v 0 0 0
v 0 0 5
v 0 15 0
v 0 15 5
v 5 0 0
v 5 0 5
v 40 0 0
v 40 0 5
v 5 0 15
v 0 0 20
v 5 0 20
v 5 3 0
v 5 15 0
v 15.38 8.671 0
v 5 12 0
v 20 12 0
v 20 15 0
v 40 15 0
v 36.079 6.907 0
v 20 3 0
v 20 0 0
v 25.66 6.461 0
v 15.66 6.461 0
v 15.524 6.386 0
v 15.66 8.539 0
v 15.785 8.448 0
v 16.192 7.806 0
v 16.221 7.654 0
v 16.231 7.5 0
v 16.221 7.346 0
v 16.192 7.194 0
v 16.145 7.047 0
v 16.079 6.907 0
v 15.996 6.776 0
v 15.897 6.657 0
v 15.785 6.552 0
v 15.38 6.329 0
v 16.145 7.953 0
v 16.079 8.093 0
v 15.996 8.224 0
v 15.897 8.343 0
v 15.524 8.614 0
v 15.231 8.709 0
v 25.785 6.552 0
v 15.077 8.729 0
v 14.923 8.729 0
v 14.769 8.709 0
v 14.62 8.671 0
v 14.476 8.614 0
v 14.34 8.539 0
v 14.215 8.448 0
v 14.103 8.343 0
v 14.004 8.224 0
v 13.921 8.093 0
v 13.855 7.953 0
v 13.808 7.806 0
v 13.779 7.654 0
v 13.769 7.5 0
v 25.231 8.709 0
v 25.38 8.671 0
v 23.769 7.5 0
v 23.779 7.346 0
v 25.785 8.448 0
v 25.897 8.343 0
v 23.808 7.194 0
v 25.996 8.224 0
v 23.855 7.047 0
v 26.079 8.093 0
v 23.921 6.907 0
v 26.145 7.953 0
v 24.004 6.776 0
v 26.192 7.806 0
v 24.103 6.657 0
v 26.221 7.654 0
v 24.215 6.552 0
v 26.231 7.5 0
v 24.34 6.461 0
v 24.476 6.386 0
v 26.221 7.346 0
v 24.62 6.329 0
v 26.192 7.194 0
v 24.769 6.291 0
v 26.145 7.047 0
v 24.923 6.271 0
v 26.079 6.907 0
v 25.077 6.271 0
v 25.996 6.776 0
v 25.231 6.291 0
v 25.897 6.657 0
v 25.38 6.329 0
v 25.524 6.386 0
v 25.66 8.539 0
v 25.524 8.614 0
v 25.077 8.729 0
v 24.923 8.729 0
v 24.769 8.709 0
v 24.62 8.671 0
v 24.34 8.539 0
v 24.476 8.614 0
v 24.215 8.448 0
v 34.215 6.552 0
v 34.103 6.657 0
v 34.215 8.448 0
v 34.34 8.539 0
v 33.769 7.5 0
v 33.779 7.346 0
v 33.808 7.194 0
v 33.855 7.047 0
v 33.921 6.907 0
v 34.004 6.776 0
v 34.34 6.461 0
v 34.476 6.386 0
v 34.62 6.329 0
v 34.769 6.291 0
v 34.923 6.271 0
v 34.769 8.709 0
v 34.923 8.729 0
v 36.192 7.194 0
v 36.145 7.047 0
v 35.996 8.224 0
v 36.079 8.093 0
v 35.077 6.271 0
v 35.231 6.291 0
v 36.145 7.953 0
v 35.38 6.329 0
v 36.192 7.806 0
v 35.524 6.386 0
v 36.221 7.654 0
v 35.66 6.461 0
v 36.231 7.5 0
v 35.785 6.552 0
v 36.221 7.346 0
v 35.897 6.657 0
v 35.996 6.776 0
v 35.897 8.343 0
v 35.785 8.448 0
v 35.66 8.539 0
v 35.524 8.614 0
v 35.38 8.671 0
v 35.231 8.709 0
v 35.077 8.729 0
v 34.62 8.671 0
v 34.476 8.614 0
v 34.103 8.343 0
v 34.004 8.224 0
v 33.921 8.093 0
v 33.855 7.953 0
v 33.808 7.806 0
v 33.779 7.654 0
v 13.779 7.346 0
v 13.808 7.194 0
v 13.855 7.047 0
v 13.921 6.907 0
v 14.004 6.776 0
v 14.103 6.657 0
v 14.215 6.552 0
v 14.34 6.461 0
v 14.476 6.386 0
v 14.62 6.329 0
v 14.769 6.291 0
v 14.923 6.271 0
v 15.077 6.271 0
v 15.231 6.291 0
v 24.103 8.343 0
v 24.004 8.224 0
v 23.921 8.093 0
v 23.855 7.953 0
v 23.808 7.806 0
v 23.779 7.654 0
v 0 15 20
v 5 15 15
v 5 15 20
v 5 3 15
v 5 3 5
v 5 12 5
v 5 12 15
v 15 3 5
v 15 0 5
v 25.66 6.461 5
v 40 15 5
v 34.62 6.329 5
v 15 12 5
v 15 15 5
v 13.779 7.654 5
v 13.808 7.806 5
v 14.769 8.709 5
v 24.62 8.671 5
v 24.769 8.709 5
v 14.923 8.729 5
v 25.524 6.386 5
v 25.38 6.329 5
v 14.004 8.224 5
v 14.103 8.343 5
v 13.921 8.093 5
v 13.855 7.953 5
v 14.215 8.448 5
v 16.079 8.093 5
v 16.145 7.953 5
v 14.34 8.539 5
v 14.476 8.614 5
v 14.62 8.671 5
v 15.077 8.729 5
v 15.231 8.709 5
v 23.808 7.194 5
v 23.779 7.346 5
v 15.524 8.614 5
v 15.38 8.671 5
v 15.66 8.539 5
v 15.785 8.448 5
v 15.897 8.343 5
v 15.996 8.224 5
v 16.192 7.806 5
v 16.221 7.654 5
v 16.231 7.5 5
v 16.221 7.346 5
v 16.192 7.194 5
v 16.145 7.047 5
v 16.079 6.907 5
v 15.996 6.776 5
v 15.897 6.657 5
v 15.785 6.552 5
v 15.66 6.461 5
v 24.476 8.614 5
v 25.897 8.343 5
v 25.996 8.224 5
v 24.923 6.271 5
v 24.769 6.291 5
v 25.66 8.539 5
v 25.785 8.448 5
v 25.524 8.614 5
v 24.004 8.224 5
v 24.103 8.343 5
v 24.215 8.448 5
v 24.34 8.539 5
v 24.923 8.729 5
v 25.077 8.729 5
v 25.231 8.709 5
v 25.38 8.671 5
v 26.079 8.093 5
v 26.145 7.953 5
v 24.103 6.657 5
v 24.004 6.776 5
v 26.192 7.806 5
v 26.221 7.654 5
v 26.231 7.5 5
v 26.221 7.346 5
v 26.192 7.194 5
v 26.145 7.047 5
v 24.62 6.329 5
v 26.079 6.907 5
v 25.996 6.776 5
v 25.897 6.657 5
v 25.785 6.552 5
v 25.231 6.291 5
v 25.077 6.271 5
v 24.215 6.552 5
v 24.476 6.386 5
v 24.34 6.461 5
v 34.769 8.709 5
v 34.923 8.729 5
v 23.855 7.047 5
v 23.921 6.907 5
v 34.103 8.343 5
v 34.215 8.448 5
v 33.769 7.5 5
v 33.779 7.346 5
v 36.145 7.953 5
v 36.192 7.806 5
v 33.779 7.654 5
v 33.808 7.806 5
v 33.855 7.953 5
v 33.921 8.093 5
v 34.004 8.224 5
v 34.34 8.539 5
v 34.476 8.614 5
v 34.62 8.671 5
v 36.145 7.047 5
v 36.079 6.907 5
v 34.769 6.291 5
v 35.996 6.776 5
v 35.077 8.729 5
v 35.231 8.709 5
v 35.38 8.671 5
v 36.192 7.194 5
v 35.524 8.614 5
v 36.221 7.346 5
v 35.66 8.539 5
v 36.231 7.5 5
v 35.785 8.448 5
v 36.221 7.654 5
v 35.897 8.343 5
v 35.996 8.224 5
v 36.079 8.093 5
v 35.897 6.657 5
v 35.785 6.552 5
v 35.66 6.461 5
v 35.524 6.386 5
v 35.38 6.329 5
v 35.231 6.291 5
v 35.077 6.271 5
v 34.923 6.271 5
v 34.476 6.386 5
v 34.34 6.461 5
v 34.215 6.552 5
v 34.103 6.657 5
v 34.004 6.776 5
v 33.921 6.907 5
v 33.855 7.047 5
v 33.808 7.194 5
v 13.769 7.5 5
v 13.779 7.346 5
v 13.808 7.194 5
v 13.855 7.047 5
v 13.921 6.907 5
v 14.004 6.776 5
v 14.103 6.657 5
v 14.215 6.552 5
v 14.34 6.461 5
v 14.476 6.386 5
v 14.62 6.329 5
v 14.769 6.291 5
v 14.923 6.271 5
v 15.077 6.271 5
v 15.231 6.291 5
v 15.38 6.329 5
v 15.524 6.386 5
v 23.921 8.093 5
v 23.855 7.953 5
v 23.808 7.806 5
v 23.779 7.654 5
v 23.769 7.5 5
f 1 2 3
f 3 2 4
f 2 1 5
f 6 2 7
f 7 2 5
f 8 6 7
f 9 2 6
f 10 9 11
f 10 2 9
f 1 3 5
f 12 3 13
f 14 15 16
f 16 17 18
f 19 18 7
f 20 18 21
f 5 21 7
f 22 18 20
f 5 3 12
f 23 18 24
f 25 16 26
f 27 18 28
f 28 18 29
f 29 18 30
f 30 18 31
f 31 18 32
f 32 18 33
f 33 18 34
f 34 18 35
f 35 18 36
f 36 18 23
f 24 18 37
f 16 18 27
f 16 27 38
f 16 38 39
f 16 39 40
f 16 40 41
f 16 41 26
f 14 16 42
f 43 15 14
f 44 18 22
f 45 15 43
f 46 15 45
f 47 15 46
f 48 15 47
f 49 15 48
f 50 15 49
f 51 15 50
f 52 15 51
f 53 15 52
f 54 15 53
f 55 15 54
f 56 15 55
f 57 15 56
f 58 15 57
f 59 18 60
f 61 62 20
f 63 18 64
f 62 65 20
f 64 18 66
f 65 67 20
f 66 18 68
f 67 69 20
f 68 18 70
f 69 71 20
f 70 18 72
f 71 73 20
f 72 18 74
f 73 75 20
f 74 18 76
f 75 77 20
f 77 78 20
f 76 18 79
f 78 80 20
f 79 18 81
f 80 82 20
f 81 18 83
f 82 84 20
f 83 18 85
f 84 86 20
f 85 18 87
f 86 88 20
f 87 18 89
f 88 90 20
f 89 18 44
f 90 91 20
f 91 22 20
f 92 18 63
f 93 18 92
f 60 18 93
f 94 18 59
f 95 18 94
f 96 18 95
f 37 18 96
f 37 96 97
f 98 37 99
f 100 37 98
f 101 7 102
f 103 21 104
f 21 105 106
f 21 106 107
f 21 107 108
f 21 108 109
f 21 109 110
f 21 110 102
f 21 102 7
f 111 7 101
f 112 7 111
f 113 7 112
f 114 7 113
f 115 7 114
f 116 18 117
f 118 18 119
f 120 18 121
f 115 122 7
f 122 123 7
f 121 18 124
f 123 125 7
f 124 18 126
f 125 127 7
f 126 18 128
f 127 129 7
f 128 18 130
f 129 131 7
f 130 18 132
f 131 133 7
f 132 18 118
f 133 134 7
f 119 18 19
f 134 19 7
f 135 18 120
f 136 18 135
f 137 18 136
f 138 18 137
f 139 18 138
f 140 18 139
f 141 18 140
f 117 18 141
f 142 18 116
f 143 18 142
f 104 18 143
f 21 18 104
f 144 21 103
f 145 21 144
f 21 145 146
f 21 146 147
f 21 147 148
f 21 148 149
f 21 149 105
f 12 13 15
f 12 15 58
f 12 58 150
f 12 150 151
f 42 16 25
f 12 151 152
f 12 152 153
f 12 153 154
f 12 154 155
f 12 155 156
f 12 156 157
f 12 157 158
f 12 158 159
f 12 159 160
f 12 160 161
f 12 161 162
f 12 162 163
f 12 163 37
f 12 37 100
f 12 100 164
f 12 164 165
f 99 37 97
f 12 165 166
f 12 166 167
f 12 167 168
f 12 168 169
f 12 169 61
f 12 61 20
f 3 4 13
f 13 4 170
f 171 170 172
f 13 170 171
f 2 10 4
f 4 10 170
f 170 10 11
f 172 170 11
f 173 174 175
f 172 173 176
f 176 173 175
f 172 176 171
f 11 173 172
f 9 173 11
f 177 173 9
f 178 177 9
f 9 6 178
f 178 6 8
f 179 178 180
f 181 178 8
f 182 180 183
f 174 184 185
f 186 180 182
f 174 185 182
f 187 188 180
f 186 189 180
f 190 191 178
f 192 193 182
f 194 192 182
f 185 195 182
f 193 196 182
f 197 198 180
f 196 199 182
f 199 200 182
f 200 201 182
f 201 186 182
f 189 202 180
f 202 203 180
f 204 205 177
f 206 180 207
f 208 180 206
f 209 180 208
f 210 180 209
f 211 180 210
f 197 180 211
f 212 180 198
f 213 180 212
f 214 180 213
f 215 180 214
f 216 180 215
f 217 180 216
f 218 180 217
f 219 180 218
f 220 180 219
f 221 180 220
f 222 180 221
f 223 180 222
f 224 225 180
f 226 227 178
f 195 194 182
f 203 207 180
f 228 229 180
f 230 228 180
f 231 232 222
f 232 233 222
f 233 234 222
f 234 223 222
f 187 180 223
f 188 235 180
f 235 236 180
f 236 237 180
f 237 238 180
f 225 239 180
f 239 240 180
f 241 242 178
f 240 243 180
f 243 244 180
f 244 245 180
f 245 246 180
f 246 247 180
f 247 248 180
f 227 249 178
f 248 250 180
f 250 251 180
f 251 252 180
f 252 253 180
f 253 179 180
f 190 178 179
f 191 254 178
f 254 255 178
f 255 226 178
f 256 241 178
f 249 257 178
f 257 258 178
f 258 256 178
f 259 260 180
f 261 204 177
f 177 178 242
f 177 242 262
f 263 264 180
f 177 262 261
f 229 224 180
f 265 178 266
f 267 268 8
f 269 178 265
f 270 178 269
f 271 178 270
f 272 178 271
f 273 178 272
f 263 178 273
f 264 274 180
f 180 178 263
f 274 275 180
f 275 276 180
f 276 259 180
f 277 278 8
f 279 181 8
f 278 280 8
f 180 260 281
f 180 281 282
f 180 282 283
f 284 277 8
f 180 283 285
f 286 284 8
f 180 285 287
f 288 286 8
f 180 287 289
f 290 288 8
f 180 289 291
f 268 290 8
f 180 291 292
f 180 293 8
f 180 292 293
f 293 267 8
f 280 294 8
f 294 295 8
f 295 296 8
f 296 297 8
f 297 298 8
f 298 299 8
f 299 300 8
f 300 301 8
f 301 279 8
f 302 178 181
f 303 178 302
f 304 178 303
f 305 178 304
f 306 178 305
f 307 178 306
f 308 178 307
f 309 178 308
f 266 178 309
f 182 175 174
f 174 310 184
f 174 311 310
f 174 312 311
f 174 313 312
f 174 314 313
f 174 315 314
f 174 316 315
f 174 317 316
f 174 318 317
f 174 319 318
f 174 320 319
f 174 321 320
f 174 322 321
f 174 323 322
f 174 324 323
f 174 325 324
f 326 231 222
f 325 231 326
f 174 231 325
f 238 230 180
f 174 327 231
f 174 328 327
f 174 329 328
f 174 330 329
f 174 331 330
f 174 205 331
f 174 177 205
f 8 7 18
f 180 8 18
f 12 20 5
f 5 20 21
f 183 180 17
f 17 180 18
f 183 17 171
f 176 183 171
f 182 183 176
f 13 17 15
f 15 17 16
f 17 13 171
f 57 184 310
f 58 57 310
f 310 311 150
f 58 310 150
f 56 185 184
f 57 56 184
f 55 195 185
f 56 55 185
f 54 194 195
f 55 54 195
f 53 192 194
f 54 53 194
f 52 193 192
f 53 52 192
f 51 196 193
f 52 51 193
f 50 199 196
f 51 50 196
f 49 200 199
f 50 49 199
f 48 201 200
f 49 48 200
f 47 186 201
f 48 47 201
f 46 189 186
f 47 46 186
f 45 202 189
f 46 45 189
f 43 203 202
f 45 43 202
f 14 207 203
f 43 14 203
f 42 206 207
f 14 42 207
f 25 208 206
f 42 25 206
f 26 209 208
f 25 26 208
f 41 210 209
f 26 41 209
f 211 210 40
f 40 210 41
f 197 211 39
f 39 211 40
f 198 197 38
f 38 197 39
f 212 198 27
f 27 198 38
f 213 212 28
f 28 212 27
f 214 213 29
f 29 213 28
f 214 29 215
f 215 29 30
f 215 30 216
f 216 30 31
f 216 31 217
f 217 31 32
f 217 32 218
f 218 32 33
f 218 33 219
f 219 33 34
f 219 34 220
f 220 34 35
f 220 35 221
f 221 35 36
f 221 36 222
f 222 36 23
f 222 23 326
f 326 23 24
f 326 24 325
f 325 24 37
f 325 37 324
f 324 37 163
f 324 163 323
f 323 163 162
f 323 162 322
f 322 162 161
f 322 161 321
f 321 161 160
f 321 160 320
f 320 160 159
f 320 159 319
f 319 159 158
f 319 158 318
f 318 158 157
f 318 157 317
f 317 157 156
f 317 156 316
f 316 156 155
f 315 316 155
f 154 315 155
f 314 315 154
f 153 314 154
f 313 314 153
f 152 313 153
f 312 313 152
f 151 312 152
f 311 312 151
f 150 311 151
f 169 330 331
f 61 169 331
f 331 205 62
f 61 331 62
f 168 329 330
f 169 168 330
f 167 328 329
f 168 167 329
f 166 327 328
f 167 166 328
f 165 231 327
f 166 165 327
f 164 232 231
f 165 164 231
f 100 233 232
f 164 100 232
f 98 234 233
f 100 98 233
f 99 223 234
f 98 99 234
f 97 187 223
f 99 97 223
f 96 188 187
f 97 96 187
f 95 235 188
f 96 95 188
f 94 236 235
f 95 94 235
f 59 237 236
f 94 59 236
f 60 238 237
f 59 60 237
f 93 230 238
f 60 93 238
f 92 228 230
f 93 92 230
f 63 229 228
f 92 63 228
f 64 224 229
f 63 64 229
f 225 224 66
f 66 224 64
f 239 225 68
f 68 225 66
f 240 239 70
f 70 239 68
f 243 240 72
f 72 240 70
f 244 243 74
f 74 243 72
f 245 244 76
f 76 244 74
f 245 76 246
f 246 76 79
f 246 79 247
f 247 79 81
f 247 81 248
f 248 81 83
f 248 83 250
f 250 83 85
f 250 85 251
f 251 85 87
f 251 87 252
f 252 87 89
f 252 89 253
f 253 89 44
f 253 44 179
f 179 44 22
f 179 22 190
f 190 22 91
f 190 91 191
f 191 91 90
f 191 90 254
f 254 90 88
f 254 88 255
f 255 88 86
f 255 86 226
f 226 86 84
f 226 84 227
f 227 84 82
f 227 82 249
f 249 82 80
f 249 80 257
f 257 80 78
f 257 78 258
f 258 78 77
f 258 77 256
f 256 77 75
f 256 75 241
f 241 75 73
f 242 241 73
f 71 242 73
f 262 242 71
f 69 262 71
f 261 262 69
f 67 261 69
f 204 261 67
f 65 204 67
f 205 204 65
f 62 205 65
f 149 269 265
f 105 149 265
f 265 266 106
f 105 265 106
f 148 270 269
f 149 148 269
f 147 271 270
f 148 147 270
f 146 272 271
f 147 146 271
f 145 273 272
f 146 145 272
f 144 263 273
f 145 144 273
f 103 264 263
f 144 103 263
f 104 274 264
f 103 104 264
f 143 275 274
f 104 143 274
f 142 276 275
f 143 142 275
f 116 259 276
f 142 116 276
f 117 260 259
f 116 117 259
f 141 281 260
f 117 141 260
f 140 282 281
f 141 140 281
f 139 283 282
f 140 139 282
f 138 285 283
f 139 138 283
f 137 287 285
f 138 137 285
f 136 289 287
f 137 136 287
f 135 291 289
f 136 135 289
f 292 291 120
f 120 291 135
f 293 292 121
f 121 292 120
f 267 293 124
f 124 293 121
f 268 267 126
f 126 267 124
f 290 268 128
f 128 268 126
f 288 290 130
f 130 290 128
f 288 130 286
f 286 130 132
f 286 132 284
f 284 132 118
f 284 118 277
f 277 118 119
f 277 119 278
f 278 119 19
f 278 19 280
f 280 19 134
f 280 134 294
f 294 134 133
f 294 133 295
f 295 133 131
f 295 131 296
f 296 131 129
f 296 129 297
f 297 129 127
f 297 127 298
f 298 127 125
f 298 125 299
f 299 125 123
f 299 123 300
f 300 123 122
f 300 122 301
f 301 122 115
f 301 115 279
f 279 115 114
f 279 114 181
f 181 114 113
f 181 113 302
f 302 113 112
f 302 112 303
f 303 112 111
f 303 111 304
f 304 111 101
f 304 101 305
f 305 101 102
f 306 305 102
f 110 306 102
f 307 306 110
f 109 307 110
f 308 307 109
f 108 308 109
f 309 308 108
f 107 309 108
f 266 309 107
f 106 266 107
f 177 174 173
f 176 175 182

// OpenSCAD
// Resolution
$fn=50;

// Base of stand
// Note, remote the radius from the dimensions
// of th rectangular base
base_width = 15;
base_thickness = 5;
base_length = 40;

// Screw Holes
screw_radius = 1.1310 + 0.1; 

difference(){
cube([base_length,base_width,base_thickness]);

translate([35,0.5*base_width,0]) cylinder(1.5*base_thickness,screw_radius,screw_radius);
translate([25,0.5*base_width,0]) cylinder(1.5*base_thickness,screw_radius,screw_radius);
translate([15,0.5*base_width,0]) cylinder(1.5*base_thickness,screw_radius,screw_radius);
}

translate([5,0,0])rotate([0,-90,0]) cube([20,15,5]);

translate([5,0,0])rotate([-90,-90,0]) linear_extrude(3) polygon(points=[[0,0],[15,0],[0,15],[0,0]],paths=[[0,1,2,3]]);

translate([5,12,0]) rotate([-90,-90,0]) linear_extrude(3) polygon(points=[[0,0],[15,0],[0,15],[0,0]],paths=[[0,1,2,3]]);
